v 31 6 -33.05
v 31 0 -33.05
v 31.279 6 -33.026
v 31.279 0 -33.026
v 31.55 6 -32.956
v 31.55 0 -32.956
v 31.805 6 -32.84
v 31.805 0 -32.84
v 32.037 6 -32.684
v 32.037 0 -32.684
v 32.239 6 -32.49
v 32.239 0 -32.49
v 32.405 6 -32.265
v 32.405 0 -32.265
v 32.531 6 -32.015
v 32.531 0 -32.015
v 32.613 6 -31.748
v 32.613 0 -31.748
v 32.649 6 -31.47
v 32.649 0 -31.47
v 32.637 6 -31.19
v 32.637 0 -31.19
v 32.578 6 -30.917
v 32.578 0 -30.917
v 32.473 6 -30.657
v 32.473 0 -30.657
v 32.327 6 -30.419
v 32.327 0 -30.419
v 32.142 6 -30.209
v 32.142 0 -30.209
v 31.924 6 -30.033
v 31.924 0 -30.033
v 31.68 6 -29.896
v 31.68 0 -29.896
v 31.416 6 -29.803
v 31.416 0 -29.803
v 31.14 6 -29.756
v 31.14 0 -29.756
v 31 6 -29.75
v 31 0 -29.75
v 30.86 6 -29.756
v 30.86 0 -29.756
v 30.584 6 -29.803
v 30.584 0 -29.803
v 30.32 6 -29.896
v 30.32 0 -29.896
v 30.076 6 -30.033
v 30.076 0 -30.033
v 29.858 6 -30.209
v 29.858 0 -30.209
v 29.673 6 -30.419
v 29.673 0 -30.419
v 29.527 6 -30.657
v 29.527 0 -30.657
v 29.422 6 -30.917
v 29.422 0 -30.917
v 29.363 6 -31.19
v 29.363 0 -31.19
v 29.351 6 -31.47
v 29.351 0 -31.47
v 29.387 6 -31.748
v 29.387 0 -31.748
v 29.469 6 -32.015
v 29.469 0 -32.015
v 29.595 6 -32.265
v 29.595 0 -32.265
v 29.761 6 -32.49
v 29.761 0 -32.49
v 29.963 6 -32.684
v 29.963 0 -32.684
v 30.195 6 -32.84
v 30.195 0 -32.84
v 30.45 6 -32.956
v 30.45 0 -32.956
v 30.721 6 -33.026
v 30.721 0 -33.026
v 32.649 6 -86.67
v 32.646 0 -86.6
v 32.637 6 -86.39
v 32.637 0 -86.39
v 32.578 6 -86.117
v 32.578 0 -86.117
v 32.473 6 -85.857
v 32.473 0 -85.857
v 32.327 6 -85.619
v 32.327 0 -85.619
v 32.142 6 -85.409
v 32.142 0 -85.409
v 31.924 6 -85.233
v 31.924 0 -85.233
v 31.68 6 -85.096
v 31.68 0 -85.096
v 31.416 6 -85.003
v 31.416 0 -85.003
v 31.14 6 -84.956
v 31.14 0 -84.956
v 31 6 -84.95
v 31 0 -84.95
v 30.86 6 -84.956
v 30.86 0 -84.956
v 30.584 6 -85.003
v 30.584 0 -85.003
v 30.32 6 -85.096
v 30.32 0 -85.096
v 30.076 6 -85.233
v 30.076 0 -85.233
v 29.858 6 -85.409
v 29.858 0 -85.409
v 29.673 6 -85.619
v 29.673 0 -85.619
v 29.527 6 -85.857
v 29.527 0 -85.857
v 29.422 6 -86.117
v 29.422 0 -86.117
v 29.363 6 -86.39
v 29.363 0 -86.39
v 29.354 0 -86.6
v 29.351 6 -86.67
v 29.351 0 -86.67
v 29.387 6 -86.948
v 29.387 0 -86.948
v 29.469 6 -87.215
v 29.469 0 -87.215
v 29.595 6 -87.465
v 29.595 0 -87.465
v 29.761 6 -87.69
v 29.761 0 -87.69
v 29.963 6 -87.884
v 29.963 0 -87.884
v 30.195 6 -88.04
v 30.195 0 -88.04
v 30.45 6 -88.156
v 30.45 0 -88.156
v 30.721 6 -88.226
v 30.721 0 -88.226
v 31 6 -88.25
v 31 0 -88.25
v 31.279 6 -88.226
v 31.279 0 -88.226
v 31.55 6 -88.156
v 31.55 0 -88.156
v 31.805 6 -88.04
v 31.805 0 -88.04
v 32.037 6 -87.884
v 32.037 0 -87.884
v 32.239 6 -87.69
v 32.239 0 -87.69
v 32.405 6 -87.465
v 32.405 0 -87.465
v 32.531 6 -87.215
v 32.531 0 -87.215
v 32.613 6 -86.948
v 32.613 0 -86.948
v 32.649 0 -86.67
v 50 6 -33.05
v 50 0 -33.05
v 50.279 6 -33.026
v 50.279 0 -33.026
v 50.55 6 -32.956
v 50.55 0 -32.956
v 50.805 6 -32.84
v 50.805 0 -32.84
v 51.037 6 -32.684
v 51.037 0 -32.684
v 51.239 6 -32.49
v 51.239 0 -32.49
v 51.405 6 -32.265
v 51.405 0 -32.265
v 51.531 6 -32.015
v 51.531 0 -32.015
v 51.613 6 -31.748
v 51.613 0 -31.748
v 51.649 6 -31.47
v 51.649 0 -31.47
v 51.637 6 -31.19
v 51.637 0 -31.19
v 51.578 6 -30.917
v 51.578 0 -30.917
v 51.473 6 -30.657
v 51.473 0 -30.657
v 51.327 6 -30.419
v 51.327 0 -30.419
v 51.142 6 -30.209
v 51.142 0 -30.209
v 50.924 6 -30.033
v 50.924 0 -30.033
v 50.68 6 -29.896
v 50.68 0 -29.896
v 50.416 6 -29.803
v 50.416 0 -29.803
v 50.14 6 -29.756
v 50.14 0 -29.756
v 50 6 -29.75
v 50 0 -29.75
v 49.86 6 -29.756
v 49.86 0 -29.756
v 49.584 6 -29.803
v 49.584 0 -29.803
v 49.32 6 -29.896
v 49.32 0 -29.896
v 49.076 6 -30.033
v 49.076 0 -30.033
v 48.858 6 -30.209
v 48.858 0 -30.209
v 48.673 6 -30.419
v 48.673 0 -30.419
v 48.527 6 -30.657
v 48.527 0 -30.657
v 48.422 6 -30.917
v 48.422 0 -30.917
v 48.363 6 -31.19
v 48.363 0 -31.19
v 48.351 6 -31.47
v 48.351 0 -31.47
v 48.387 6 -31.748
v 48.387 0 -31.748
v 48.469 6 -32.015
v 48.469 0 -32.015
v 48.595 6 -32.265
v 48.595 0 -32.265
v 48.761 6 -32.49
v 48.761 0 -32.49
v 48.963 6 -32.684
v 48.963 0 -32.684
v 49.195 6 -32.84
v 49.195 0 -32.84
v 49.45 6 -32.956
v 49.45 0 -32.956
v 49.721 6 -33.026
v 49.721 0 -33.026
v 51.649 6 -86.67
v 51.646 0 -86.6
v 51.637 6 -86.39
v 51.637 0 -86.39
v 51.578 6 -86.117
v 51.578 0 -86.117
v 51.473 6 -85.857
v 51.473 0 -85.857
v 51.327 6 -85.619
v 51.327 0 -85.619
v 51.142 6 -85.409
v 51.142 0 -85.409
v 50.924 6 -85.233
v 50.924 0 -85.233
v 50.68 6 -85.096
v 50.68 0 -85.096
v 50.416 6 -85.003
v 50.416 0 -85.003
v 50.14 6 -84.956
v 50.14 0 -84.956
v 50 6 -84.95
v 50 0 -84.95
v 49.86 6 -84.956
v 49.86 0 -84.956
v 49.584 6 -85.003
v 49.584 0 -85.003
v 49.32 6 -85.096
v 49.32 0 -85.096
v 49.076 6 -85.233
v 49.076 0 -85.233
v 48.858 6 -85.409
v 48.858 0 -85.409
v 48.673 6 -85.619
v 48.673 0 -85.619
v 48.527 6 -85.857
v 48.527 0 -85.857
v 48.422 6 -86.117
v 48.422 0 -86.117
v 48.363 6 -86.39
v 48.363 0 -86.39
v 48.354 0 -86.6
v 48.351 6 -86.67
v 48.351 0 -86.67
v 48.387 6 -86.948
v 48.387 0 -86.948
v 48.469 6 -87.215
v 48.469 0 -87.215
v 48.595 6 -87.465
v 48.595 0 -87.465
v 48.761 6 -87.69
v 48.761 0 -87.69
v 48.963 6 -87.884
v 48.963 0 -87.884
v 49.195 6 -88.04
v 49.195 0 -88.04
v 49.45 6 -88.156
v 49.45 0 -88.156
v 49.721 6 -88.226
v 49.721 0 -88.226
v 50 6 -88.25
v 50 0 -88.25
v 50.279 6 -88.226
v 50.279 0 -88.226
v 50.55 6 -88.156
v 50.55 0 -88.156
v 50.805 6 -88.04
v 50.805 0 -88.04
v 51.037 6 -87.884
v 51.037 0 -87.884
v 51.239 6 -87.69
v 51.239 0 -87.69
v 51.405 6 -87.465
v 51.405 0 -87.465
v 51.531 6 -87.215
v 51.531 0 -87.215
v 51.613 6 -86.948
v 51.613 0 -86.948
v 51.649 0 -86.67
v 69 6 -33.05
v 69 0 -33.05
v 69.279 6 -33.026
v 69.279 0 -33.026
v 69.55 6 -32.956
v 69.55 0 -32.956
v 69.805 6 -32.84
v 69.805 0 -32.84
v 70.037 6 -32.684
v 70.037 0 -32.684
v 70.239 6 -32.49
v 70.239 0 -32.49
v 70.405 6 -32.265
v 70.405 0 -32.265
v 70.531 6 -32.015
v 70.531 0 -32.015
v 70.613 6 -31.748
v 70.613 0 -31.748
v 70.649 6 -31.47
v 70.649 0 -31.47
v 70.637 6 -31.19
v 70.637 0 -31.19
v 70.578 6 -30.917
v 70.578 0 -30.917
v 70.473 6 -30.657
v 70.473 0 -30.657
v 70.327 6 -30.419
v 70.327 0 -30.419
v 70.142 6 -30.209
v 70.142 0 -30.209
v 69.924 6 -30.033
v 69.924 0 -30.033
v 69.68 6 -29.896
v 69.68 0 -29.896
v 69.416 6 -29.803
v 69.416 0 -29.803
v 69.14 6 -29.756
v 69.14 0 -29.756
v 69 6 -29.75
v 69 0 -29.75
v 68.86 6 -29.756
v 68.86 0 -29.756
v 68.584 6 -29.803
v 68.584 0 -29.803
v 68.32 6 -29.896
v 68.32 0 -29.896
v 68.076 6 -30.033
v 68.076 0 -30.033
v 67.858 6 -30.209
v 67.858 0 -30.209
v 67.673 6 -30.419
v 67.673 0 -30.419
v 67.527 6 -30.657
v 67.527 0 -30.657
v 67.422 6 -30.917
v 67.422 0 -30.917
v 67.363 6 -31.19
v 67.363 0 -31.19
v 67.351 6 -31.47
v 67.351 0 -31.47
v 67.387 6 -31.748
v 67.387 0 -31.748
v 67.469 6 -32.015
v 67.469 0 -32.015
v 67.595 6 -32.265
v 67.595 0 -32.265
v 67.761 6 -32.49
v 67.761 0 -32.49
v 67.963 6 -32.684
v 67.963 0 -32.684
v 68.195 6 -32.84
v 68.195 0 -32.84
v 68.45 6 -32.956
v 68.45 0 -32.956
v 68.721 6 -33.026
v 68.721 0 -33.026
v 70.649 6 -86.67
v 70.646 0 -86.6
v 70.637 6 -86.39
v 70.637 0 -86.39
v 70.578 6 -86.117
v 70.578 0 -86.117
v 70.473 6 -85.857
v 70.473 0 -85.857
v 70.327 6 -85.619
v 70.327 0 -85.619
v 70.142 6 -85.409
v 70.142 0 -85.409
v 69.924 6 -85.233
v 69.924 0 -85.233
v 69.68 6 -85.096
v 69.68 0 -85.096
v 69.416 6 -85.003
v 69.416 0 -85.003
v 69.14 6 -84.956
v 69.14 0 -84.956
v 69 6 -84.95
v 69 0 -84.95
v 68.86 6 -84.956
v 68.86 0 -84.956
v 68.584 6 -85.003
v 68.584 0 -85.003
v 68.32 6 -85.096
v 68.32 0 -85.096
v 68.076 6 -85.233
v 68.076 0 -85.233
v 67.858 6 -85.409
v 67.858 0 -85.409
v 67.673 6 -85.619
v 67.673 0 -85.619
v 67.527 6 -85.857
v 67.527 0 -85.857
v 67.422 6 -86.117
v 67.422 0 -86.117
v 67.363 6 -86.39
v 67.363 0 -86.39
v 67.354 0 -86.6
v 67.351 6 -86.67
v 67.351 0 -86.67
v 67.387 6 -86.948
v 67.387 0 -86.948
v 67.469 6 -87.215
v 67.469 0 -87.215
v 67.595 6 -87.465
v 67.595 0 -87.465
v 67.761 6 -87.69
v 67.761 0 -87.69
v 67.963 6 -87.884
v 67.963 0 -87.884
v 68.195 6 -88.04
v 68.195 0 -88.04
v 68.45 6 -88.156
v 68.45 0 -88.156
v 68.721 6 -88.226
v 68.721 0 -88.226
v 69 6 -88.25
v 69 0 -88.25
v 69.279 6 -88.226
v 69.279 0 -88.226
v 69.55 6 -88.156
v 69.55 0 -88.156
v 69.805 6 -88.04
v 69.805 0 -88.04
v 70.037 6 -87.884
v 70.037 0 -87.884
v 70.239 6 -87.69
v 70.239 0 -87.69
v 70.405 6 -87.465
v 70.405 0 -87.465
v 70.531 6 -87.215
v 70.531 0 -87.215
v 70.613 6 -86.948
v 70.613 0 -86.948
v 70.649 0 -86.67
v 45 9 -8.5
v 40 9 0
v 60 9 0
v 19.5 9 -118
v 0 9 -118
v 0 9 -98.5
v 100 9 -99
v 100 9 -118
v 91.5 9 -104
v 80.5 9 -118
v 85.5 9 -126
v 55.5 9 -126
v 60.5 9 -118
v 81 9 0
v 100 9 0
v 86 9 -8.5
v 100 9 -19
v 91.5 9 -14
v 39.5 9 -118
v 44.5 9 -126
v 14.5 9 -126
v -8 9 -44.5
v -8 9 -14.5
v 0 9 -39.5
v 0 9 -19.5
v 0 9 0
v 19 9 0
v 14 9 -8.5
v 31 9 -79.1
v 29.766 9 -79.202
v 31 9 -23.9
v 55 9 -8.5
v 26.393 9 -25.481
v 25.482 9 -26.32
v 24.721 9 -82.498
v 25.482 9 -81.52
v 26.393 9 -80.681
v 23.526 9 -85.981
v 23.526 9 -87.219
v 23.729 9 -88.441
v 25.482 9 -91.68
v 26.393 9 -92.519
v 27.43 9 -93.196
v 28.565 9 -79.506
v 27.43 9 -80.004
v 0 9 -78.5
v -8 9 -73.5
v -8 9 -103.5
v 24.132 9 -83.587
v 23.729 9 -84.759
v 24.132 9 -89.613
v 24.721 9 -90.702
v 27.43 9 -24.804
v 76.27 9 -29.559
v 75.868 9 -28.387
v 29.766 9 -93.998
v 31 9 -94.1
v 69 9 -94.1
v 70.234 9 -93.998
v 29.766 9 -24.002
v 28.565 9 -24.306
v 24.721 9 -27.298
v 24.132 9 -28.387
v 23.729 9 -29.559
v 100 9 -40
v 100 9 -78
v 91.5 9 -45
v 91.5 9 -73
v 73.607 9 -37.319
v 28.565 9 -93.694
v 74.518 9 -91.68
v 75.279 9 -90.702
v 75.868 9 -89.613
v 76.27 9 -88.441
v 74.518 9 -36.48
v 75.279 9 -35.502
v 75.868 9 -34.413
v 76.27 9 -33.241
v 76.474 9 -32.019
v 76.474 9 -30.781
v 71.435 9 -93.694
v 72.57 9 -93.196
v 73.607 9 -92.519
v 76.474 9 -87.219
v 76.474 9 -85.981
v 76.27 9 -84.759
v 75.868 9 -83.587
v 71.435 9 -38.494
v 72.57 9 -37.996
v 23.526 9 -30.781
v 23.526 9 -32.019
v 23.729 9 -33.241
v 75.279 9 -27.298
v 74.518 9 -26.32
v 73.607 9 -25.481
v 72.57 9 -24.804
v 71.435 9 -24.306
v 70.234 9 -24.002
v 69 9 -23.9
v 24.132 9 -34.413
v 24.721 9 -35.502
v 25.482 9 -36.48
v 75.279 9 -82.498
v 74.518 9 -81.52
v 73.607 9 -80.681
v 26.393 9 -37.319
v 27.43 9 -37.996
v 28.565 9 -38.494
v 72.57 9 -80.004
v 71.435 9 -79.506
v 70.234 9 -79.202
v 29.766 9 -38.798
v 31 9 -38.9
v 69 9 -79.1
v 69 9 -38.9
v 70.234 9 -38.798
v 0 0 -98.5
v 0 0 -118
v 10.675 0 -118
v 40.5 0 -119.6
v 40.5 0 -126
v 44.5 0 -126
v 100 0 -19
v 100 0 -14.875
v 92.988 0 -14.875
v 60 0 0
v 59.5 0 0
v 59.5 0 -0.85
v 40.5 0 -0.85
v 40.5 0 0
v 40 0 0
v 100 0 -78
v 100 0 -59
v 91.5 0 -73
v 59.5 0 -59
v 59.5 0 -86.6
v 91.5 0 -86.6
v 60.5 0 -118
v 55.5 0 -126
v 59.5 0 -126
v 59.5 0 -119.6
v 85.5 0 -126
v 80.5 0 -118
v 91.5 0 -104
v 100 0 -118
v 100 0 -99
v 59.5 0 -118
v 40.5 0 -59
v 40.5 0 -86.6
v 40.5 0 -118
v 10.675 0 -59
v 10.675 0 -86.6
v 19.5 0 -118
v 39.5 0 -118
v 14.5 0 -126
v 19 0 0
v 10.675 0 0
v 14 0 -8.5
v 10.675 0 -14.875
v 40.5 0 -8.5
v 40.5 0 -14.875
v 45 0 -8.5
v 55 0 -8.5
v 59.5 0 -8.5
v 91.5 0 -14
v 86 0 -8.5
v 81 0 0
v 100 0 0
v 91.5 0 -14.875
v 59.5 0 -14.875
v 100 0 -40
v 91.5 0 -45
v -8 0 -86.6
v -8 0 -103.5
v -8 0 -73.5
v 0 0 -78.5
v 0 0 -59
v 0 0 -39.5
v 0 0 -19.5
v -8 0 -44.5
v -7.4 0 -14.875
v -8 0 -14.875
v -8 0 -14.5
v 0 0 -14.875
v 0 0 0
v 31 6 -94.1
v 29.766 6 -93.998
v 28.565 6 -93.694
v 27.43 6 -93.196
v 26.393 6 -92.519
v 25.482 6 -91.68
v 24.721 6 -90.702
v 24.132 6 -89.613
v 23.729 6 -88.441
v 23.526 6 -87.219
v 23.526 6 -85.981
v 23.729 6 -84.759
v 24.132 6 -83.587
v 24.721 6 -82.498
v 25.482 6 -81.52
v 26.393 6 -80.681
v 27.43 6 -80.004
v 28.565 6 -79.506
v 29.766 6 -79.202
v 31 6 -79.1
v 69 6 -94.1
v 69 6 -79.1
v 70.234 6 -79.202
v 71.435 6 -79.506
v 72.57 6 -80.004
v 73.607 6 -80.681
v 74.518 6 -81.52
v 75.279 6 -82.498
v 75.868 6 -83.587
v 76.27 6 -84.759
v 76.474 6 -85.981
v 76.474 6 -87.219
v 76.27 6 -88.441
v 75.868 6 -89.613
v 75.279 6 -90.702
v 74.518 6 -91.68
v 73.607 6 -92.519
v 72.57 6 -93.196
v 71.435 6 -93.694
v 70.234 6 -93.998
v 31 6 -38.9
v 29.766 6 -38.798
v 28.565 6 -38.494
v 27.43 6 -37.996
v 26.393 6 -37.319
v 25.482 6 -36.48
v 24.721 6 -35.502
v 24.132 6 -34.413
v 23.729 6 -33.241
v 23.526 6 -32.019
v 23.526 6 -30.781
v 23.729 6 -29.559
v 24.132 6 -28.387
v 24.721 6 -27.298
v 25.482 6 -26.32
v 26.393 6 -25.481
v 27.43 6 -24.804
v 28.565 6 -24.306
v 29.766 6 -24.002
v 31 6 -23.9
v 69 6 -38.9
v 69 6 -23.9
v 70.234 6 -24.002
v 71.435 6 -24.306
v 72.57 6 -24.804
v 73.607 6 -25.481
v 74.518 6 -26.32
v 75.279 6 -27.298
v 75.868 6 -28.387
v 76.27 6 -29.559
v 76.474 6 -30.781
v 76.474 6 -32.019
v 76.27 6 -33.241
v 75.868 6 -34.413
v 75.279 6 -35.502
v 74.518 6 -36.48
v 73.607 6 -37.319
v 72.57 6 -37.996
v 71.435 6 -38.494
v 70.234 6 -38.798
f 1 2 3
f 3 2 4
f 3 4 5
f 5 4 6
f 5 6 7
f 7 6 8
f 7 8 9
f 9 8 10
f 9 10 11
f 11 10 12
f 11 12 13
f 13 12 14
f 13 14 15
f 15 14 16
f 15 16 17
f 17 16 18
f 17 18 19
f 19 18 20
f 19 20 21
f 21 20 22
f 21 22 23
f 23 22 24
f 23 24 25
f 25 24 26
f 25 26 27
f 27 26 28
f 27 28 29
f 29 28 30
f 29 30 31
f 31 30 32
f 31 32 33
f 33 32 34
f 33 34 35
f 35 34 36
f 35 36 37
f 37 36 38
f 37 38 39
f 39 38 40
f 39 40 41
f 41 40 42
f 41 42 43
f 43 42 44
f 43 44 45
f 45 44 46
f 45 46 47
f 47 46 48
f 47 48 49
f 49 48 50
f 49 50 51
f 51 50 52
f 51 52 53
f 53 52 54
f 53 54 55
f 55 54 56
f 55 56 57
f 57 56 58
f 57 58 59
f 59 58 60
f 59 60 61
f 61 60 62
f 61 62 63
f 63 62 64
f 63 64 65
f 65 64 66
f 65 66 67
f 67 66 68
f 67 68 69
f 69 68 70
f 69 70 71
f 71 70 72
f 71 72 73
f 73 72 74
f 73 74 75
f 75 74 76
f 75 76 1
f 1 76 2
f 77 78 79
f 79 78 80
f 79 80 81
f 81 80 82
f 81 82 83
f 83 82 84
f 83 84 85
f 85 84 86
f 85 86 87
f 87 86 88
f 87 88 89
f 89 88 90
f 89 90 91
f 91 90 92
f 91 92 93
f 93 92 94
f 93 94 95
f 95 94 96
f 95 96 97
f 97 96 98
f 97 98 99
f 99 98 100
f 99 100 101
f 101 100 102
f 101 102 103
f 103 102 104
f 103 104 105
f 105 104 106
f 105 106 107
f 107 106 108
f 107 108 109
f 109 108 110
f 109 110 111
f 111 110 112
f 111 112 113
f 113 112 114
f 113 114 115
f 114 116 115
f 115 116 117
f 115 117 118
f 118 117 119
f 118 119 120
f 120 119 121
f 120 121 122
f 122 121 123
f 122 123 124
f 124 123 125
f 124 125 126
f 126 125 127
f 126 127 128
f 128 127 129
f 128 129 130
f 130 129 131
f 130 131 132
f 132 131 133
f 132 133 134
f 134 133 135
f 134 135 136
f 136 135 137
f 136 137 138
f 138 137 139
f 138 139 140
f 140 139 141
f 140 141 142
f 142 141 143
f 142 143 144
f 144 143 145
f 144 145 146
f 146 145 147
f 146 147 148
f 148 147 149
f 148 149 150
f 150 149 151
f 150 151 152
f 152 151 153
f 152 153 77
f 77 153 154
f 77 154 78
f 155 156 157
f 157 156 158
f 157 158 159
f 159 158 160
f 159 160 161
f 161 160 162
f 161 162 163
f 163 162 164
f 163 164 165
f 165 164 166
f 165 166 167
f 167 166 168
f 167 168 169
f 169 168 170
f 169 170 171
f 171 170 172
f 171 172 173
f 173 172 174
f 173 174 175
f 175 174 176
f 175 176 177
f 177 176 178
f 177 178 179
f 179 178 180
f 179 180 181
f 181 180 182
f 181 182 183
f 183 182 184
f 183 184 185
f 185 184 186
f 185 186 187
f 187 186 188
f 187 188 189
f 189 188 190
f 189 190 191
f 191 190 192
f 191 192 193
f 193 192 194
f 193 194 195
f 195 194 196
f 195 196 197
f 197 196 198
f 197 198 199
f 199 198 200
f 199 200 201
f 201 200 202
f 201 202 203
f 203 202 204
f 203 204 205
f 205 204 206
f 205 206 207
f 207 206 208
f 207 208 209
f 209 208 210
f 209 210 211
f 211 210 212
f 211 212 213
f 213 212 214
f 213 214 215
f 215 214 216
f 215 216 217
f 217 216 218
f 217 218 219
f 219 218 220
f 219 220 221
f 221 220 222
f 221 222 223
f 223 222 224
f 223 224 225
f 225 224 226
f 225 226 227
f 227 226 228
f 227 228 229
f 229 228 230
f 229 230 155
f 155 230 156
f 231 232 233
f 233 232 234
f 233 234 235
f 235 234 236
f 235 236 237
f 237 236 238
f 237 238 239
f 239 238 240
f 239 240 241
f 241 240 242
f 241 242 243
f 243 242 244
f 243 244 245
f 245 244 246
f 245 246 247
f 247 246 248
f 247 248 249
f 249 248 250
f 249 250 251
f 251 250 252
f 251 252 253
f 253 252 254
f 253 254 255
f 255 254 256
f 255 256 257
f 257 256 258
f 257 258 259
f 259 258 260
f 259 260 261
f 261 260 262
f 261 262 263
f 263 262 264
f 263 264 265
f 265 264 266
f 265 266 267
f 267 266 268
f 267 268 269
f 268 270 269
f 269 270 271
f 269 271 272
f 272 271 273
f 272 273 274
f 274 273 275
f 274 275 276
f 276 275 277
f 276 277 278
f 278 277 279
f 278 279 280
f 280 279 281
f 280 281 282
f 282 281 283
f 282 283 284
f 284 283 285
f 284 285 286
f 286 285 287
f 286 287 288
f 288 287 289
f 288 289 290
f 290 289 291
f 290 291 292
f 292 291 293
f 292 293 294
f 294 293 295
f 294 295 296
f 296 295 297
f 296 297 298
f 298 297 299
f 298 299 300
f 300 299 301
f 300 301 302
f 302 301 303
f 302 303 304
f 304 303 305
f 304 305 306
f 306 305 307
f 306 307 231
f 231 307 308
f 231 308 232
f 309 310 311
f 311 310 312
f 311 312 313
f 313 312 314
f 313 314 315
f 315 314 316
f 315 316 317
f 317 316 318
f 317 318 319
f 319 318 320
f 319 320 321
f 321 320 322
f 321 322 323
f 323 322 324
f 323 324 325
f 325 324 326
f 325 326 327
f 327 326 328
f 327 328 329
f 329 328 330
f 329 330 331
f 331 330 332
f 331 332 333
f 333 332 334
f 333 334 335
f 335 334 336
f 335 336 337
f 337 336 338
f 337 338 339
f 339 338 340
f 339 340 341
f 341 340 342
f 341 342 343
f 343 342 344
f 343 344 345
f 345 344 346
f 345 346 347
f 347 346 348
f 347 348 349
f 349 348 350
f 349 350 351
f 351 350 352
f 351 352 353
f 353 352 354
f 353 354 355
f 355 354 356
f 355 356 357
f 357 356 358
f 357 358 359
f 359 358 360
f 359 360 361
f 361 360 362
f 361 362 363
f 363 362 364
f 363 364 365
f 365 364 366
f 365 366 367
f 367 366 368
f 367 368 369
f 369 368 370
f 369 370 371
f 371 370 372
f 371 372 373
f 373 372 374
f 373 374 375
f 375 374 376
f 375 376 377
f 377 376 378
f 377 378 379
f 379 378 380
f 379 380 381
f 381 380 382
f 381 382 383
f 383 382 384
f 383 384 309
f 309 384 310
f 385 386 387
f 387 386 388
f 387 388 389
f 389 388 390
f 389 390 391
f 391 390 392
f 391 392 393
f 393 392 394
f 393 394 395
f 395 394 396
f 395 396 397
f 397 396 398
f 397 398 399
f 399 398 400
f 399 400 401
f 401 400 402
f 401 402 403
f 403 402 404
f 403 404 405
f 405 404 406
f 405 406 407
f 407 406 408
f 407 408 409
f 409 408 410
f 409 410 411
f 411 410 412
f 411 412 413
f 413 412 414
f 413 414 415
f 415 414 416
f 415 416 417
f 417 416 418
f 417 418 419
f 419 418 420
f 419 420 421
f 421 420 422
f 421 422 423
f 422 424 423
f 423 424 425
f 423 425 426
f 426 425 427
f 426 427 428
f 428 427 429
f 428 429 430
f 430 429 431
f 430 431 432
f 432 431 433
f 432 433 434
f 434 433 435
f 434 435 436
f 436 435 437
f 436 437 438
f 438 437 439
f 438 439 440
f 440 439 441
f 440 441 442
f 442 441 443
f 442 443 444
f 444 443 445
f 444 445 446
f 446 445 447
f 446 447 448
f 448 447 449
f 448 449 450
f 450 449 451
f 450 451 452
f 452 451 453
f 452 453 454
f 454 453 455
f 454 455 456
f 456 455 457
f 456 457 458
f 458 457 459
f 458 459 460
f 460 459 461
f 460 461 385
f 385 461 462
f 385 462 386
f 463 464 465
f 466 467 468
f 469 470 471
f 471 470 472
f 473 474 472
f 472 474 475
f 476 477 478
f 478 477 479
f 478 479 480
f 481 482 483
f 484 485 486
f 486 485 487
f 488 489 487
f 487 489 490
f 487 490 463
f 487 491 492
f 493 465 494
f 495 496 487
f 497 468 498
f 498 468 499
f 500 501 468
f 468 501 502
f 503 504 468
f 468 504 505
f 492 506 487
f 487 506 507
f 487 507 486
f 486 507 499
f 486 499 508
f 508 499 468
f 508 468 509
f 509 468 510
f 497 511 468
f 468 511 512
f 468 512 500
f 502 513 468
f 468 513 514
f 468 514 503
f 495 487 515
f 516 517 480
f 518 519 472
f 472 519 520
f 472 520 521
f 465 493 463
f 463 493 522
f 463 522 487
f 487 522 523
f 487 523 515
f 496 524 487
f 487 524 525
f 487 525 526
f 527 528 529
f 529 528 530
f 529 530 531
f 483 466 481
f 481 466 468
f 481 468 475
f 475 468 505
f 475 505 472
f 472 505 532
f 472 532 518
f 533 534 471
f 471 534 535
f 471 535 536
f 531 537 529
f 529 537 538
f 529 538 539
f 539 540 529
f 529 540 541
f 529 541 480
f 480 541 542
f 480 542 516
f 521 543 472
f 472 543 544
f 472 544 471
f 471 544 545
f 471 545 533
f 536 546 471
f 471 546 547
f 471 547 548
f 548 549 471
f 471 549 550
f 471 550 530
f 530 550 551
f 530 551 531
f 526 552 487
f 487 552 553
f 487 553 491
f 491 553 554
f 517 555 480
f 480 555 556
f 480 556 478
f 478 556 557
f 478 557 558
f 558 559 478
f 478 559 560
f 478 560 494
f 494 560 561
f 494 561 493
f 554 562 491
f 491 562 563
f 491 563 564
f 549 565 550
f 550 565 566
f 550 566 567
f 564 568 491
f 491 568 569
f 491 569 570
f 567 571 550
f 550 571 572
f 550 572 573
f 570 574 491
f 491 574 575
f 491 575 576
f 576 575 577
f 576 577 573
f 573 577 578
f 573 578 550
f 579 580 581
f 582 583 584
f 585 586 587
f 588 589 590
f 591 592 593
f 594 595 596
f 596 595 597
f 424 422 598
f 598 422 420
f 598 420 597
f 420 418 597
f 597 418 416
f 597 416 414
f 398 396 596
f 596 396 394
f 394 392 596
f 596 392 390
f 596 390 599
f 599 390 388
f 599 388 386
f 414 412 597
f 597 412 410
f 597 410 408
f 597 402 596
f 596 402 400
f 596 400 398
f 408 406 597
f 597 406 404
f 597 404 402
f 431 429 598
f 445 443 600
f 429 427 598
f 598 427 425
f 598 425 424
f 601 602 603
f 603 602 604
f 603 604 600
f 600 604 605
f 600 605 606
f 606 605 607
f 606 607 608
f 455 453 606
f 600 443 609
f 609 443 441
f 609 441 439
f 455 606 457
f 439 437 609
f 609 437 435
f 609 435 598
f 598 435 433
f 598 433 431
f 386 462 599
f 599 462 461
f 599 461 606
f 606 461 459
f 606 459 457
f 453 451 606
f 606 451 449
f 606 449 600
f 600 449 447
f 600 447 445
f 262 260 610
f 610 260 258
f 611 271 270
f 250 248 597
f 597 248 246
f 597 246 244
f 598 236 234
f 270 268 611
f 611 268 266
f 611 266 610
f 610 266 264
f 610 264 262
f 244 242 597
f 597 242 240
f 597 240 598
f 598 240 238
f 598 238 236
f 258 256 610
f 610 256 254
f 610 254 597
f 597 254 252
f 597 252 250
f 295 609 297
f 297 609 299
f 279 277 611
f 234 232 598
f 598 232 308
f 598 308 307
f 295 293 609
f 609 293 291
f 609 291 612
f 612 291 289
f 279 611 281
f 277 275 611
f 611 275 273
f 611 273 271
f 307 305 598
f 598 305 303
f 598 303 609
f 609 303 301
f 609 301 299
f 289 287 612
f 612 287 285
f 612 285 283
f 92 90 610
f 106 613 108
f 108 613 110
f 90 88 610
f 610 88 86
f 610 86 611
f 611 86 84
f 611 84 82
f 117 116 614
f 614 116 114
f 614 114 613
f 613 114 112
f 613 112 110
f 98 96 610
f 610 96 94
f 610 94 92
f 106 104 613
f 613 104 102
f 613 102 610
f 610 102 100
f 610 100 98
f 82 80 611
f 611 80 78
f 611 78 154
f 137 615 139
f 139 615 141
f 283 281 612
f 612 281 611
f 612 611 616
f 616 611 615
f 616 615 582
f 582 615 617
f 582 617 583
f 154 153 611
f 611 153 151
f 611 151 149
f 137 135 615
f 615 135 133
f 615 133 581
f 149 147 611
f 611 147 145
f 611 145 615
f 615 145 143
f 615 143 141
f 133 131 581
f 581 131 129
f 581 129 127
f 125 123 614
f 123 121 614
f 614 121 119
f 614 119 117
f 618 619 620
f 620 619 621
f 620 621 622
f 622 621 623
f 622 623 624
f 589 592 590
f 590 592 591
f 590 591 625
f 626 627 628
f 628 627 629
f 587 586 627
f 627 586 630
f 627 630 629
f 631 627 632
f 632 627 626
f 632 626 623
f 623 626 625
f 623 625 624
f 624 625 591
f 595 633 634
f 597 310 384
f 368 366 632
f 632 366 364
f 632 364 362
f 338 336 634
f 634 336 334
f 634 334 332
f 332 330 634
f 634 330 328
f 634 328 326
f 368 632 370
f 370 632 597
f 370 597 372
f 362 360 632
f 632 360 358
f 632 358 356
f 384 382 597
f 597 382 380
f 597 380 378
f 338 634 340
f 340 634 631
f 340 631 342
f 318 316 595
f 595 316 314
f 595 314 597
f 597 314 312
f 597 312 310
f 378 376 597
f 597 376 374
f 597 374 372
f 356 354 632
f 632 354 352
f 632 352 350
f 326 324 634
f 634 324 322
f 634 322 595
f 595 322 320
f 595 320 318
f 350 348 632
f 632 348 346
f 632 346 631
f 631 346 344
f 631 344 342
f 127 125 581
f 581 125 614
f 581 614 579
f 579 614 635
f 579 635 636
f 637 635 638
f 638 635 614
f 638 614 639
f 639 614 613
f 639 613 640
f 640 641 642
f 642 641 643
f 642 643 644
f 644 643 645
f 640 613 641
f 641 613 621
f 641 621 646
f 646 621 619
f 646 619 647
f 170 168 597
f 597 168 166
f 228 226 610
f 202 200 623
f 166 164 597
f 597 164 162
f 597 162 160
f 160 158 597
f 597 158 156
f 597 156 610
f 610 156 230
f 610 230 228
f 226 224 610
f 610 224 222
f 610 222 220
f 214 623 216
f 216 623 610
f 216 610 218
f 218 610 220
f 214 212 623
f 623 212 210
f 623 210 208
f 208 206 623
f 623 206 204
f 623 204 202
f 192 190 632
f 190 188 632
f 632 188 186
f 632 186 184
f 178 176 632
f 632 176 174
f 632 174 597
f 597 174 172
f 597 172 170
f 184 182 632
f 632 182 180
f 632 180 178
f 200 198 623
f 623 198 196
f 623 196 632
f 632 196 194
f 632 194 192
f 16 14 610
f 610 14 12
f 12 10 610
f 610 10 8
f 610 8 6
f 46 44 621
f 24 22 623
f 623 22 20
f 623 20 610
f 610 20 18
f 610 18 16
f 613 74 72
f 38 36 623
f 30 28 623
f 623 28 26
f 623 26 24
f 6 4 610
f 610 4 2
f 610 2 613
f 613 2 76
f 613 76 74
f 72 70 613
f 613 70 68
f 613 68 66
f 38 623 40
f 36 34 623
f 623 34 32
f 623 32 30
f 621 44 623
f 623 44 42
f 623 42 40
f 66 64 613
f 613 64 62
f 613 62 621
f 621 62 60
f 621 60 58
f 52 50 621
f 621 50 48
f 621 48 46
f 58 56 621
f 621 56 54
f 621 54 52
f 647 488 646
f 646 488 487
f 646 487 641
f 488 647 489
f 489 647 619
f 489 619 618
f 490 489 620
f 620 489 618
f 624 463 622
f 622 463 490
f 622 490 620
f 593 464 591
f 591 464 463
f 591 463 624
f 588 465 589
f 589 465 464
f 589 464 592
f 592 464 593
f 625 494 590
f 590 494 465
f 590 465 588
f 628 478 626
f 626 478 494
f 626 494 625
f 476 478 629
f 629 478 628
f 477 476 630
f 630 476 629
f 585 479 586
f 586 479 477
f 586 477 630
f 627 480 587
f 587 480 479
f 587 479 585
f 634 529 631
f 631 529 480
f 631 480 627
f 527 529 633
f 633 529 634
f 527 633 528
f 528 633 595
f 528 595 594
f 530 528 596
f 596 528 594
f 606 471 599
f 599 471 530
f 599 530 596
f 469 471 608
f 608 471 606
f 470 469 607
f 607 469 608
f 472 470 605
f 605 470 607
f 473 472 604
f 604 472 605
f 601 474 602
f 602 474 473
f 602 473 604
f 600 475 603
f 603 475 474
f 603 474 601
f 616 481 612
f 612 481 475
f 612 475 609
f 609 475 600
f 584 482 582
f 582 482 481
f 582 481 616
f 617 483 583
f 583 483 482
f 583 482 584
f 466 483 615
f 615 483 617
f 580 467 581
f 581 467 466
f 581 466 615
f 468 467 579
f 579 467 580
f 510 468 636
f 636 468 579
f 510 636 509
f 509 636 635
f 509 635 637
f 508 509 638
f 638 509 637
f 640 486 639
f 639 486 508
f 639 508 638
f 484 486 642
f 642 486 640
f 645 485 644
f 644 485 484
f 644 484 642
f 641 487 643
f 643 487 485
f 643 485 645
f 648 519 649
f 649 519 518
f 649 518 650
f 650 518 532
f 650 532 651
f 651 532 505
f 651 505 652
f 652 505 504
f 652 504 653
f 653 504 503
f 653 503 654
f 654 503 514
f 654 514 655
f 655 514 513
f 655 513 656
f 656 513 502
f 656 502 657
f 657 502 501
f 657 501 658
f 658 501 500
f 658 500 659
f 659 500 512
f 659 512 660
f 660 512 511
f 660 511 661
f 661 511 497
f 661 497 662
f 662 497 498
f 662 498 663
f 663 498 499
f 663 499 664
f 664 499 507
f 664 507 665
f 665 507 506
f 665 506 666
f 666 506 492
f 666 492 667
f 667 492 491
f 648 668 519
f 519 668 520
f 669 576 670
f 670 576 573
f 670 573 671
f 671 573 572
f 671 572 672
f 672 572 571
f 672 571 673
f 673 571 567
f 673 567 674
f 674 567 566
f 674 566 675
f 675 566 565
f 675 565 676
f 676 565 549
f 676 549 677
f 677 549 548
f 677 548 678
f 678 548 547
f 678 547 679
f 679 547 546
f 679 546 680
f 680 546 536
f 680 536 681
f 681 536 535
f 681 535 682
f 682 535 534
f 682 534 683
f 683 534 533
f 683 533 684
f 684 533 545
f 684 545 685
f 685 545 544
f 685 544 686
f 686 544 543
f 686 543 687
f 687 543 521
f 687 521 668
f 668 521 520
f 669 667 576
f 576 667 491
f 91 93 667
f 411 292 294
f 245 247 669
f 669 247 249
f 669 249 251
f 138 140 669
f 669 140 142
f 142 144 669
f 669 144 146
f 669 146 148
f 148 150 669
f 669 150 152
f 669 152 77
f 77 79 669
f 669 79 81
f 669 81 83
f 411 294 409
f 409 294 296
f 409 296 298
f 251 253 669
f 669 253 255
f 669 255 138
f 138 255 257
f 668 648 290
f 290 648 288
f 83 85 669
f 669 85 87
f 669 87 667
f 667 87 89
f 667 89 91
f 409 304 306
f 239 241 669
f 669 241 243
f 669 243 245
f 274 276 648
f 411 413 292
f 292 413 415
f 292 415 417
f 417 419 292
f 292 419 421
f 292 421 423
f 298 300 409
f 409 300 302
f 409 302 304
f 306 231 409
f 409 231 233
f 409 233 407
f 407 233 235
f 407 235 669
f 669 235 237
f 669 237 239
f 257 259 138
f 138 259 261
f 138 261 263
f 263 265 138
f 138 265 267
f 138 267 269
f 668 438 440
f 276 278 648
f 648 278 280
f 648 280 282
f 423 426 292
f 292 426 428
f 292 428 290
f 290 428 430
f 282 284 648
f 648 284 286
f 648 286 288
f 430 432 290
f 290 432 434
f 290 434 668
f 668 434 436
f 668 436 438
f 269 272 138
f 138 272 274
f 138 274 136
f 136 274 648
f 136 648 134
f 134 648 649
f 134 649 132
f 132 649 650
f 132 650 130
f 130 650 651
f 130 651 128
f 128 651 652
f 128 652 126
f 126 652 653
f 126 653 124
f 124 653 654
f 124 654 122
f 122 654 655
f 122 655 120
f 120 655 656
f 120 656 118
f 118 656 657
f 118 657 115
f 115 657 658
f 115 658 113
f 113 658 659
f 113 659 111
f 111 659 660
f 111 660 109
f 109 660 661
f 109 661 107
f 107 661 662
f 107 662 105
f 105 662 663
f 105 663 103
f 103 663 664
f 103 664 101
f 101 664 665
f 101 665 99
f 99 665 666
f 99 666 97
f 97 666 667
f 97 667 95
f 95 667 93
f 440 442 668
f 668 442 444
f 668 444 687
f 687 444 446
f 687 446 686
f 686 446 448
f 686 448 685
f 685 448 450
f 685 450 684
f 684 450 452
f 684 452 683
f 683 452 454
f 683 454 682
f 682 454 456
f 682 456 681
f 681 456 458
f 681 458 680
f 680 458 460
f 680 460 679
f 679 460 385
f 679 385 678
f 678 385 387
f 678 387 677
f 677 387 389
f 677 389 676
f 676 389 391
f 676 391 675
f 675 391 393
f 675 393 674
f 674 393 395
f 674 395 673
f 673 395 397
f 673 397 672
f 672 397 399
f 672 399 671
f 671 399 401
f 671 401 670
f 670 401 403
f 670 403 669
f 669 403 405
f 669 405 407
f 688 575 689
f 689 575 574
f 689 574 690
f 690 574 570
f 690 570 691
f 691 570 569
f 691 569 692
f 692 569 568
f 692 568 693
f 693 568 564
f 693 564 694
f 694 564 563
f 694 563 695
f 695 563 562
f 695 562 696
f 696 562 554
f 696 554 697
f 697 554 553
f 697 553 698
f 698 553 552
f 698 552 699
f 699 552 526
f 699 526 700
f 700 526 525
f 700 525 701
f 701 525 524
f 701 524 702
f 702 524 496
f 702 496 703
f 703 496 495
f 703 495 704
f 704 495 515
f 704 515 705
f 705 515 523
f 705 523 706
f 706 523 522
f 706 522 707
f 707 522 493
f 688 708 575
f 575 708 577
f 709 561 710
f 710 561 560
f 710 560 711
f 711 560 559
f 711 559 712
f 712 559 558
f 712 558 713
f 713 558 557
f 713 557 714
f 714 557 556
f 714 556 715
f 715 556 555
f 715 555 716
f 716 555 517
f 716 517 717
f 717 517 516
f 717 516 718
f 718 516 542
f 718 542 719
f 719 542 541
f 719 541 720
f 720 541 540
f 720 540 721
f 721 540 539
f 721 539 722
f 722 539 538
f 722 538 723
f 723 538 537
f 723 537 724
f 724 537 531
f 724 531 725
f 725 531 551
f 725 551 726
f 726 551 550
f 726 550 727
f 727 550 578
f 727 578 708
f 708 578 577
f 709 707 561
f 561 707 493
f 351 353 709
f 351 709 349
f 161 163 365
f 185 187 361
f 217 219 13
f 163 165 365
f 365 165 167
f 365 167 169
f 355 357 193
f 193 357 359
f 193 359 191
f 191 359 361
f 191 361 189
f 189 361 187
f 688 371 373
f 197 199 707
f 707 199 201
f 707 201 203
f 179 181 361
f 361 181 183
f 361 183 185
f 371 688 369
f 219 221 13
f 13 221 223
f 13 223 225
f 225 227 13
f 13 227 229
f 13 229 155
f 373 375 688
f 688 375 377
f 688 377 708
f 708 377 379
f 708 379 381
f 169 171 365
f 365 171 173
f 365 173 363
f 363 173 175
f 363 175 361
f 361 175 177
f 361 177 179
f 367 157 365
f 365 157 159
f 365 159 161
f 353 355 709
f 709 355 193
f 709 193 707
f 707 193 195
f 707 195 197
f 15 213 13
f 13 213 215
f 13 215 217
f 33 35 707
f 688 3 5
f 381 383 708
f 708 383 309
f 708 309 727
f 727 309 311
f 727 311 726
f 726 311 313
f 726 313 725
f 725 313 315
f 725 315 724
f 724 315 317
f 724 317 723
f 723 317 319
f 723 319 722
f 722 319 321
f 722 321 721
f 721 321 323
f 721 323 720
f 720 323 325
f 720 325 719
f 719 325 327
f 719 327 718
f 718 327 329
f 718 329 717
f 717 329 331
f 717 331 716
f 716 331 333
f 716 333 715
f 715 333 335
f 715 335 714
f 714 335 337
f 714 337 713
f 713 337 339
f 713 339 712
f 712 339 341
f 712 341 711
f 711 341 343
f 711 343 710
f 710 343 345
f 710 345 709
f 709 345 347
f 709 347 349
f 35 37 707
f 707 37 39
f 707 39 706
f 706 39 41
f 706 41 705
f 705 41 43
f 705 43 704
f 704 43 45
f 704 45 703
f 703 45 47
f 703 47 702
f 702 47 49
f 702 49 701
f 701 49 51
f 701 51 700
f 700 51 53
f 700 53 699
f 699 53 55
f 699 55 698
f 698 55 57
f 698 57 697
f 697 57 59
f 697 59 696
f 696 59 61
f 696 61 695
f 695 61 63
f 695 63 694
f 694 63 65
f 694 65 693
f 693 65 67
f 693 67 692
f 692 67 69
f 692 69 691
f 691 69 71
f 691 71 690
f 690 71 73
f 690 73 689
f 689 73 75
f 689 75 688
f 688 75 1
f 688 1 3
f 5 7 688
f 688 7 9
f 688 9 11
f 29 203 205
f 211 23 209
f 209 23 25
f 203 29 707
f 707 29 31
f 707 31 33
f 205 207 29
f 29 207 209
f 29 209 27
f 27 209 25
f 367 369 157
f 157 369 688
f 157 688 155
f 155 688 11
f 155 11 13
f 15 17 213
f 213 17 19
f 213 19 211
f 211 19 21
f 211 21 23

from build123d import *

# Parameters (mm, degrees)
SKETCH2_R           = 1.65
BOSS_EXTRUDE2_DEPTH = 9
CUT_EXTRUDE1_DEPTH  = 3


with BuildPart() as part:
    # Sketch2 → Boss-Extrude2 (new body)
    with BuildSketch(Plane(origin=(0, 0, 0), x_dir=(1, 0, 0), z_dir=(0, 1, 0))):
        Polygon((0, 98.5), (-8, 103.5), (-8, 73.5), (0, 78.5), (0, 39.5), (-8, 44.5), (-8, 14.5), (0, 19.5), (0, 0), (19, 0), (14, 8.5), (45, 8.5), (40, 0), (60, 0), (55, 8.5), (86, 8.5), (81, 0), (100, 0), (100, 19), (91.5, 14), (91.5, 45), (100, 40), (100, 78), (91.5, 73), (91.5, 104), (100, 99), (100, 118), (80.5, 118), (85.5, 126), (55.5, 126), (60.5, 118), (39.5, 118), (44.5, 126), (14.5, 126), (19.5, 118), (0, 118), align=None)
        with Locations(Location((31, 31.4, 0), (0, 0, 270))):
            Circle(SKETCH2_R, mode=Mode.SUBTRACT)
        with Locations(Location((31, 86.6, 0), (0, 0, 270))):
            Circle(SKETCH2_R, mode=Mode.SUBTRACT)
        with Locations(Location((50, 31.4, 0), (0, 0, 270))):
            Circle(SKETCH2_R, mode=Mode.SUBTRACT)
        with Locations(Location((50, 86.6, 0), (0, 0, 270))):
            Circle(SKETCH2_R, mode=Mode.SUBTRACT)
        with Locations(Location((69, 31.4, 0), (0, 0, 270))):
            Circle(SKETCH2_R, mode=Mode.SUBTRACT)
        with Locations(Location((69, 86.6, 0), (0, 0, 270))):
            Circle(SKETCH2_R, mode=Mode.SUBTRACT)
    extrude(amount=BOSS_EXTRUDE2_DEPTH)

    # Sketch4 → Cut-Extrude1 (cut)
    with BuildSketch(Plane(origin=(0, 9, 0), x_dir=(1, 0, 0), z_dir=(0, 1, 0))):
        with BuildLine():
            Line((31, 94.1), (69, 94.1))
            ThreePointArc((69, 94.1), (76.5, 86.6), (69, 79.1))
            Line((69, 79.1), (31, 79.1))
            ThreePointArc((31, 79.1), (23.5, 86.6), (31, 94.1))
        make_face()
        with BuildLine():
            Line((31, 38.9), (69, 38.9))
            ThreePointArc((69, 38.9), (76.5, 31.4), (69, 23.9))
            Line((69, 23.9), (31, 23.9))
            ThreePointArc((31, 23.9), (23.5, 31.4), (31, 38.9))
        make_face()
    extrude(amount=-CUT_EXTRUDE1_DEPTH, mode=Mode.SUBTRACT)


solid = part.part
